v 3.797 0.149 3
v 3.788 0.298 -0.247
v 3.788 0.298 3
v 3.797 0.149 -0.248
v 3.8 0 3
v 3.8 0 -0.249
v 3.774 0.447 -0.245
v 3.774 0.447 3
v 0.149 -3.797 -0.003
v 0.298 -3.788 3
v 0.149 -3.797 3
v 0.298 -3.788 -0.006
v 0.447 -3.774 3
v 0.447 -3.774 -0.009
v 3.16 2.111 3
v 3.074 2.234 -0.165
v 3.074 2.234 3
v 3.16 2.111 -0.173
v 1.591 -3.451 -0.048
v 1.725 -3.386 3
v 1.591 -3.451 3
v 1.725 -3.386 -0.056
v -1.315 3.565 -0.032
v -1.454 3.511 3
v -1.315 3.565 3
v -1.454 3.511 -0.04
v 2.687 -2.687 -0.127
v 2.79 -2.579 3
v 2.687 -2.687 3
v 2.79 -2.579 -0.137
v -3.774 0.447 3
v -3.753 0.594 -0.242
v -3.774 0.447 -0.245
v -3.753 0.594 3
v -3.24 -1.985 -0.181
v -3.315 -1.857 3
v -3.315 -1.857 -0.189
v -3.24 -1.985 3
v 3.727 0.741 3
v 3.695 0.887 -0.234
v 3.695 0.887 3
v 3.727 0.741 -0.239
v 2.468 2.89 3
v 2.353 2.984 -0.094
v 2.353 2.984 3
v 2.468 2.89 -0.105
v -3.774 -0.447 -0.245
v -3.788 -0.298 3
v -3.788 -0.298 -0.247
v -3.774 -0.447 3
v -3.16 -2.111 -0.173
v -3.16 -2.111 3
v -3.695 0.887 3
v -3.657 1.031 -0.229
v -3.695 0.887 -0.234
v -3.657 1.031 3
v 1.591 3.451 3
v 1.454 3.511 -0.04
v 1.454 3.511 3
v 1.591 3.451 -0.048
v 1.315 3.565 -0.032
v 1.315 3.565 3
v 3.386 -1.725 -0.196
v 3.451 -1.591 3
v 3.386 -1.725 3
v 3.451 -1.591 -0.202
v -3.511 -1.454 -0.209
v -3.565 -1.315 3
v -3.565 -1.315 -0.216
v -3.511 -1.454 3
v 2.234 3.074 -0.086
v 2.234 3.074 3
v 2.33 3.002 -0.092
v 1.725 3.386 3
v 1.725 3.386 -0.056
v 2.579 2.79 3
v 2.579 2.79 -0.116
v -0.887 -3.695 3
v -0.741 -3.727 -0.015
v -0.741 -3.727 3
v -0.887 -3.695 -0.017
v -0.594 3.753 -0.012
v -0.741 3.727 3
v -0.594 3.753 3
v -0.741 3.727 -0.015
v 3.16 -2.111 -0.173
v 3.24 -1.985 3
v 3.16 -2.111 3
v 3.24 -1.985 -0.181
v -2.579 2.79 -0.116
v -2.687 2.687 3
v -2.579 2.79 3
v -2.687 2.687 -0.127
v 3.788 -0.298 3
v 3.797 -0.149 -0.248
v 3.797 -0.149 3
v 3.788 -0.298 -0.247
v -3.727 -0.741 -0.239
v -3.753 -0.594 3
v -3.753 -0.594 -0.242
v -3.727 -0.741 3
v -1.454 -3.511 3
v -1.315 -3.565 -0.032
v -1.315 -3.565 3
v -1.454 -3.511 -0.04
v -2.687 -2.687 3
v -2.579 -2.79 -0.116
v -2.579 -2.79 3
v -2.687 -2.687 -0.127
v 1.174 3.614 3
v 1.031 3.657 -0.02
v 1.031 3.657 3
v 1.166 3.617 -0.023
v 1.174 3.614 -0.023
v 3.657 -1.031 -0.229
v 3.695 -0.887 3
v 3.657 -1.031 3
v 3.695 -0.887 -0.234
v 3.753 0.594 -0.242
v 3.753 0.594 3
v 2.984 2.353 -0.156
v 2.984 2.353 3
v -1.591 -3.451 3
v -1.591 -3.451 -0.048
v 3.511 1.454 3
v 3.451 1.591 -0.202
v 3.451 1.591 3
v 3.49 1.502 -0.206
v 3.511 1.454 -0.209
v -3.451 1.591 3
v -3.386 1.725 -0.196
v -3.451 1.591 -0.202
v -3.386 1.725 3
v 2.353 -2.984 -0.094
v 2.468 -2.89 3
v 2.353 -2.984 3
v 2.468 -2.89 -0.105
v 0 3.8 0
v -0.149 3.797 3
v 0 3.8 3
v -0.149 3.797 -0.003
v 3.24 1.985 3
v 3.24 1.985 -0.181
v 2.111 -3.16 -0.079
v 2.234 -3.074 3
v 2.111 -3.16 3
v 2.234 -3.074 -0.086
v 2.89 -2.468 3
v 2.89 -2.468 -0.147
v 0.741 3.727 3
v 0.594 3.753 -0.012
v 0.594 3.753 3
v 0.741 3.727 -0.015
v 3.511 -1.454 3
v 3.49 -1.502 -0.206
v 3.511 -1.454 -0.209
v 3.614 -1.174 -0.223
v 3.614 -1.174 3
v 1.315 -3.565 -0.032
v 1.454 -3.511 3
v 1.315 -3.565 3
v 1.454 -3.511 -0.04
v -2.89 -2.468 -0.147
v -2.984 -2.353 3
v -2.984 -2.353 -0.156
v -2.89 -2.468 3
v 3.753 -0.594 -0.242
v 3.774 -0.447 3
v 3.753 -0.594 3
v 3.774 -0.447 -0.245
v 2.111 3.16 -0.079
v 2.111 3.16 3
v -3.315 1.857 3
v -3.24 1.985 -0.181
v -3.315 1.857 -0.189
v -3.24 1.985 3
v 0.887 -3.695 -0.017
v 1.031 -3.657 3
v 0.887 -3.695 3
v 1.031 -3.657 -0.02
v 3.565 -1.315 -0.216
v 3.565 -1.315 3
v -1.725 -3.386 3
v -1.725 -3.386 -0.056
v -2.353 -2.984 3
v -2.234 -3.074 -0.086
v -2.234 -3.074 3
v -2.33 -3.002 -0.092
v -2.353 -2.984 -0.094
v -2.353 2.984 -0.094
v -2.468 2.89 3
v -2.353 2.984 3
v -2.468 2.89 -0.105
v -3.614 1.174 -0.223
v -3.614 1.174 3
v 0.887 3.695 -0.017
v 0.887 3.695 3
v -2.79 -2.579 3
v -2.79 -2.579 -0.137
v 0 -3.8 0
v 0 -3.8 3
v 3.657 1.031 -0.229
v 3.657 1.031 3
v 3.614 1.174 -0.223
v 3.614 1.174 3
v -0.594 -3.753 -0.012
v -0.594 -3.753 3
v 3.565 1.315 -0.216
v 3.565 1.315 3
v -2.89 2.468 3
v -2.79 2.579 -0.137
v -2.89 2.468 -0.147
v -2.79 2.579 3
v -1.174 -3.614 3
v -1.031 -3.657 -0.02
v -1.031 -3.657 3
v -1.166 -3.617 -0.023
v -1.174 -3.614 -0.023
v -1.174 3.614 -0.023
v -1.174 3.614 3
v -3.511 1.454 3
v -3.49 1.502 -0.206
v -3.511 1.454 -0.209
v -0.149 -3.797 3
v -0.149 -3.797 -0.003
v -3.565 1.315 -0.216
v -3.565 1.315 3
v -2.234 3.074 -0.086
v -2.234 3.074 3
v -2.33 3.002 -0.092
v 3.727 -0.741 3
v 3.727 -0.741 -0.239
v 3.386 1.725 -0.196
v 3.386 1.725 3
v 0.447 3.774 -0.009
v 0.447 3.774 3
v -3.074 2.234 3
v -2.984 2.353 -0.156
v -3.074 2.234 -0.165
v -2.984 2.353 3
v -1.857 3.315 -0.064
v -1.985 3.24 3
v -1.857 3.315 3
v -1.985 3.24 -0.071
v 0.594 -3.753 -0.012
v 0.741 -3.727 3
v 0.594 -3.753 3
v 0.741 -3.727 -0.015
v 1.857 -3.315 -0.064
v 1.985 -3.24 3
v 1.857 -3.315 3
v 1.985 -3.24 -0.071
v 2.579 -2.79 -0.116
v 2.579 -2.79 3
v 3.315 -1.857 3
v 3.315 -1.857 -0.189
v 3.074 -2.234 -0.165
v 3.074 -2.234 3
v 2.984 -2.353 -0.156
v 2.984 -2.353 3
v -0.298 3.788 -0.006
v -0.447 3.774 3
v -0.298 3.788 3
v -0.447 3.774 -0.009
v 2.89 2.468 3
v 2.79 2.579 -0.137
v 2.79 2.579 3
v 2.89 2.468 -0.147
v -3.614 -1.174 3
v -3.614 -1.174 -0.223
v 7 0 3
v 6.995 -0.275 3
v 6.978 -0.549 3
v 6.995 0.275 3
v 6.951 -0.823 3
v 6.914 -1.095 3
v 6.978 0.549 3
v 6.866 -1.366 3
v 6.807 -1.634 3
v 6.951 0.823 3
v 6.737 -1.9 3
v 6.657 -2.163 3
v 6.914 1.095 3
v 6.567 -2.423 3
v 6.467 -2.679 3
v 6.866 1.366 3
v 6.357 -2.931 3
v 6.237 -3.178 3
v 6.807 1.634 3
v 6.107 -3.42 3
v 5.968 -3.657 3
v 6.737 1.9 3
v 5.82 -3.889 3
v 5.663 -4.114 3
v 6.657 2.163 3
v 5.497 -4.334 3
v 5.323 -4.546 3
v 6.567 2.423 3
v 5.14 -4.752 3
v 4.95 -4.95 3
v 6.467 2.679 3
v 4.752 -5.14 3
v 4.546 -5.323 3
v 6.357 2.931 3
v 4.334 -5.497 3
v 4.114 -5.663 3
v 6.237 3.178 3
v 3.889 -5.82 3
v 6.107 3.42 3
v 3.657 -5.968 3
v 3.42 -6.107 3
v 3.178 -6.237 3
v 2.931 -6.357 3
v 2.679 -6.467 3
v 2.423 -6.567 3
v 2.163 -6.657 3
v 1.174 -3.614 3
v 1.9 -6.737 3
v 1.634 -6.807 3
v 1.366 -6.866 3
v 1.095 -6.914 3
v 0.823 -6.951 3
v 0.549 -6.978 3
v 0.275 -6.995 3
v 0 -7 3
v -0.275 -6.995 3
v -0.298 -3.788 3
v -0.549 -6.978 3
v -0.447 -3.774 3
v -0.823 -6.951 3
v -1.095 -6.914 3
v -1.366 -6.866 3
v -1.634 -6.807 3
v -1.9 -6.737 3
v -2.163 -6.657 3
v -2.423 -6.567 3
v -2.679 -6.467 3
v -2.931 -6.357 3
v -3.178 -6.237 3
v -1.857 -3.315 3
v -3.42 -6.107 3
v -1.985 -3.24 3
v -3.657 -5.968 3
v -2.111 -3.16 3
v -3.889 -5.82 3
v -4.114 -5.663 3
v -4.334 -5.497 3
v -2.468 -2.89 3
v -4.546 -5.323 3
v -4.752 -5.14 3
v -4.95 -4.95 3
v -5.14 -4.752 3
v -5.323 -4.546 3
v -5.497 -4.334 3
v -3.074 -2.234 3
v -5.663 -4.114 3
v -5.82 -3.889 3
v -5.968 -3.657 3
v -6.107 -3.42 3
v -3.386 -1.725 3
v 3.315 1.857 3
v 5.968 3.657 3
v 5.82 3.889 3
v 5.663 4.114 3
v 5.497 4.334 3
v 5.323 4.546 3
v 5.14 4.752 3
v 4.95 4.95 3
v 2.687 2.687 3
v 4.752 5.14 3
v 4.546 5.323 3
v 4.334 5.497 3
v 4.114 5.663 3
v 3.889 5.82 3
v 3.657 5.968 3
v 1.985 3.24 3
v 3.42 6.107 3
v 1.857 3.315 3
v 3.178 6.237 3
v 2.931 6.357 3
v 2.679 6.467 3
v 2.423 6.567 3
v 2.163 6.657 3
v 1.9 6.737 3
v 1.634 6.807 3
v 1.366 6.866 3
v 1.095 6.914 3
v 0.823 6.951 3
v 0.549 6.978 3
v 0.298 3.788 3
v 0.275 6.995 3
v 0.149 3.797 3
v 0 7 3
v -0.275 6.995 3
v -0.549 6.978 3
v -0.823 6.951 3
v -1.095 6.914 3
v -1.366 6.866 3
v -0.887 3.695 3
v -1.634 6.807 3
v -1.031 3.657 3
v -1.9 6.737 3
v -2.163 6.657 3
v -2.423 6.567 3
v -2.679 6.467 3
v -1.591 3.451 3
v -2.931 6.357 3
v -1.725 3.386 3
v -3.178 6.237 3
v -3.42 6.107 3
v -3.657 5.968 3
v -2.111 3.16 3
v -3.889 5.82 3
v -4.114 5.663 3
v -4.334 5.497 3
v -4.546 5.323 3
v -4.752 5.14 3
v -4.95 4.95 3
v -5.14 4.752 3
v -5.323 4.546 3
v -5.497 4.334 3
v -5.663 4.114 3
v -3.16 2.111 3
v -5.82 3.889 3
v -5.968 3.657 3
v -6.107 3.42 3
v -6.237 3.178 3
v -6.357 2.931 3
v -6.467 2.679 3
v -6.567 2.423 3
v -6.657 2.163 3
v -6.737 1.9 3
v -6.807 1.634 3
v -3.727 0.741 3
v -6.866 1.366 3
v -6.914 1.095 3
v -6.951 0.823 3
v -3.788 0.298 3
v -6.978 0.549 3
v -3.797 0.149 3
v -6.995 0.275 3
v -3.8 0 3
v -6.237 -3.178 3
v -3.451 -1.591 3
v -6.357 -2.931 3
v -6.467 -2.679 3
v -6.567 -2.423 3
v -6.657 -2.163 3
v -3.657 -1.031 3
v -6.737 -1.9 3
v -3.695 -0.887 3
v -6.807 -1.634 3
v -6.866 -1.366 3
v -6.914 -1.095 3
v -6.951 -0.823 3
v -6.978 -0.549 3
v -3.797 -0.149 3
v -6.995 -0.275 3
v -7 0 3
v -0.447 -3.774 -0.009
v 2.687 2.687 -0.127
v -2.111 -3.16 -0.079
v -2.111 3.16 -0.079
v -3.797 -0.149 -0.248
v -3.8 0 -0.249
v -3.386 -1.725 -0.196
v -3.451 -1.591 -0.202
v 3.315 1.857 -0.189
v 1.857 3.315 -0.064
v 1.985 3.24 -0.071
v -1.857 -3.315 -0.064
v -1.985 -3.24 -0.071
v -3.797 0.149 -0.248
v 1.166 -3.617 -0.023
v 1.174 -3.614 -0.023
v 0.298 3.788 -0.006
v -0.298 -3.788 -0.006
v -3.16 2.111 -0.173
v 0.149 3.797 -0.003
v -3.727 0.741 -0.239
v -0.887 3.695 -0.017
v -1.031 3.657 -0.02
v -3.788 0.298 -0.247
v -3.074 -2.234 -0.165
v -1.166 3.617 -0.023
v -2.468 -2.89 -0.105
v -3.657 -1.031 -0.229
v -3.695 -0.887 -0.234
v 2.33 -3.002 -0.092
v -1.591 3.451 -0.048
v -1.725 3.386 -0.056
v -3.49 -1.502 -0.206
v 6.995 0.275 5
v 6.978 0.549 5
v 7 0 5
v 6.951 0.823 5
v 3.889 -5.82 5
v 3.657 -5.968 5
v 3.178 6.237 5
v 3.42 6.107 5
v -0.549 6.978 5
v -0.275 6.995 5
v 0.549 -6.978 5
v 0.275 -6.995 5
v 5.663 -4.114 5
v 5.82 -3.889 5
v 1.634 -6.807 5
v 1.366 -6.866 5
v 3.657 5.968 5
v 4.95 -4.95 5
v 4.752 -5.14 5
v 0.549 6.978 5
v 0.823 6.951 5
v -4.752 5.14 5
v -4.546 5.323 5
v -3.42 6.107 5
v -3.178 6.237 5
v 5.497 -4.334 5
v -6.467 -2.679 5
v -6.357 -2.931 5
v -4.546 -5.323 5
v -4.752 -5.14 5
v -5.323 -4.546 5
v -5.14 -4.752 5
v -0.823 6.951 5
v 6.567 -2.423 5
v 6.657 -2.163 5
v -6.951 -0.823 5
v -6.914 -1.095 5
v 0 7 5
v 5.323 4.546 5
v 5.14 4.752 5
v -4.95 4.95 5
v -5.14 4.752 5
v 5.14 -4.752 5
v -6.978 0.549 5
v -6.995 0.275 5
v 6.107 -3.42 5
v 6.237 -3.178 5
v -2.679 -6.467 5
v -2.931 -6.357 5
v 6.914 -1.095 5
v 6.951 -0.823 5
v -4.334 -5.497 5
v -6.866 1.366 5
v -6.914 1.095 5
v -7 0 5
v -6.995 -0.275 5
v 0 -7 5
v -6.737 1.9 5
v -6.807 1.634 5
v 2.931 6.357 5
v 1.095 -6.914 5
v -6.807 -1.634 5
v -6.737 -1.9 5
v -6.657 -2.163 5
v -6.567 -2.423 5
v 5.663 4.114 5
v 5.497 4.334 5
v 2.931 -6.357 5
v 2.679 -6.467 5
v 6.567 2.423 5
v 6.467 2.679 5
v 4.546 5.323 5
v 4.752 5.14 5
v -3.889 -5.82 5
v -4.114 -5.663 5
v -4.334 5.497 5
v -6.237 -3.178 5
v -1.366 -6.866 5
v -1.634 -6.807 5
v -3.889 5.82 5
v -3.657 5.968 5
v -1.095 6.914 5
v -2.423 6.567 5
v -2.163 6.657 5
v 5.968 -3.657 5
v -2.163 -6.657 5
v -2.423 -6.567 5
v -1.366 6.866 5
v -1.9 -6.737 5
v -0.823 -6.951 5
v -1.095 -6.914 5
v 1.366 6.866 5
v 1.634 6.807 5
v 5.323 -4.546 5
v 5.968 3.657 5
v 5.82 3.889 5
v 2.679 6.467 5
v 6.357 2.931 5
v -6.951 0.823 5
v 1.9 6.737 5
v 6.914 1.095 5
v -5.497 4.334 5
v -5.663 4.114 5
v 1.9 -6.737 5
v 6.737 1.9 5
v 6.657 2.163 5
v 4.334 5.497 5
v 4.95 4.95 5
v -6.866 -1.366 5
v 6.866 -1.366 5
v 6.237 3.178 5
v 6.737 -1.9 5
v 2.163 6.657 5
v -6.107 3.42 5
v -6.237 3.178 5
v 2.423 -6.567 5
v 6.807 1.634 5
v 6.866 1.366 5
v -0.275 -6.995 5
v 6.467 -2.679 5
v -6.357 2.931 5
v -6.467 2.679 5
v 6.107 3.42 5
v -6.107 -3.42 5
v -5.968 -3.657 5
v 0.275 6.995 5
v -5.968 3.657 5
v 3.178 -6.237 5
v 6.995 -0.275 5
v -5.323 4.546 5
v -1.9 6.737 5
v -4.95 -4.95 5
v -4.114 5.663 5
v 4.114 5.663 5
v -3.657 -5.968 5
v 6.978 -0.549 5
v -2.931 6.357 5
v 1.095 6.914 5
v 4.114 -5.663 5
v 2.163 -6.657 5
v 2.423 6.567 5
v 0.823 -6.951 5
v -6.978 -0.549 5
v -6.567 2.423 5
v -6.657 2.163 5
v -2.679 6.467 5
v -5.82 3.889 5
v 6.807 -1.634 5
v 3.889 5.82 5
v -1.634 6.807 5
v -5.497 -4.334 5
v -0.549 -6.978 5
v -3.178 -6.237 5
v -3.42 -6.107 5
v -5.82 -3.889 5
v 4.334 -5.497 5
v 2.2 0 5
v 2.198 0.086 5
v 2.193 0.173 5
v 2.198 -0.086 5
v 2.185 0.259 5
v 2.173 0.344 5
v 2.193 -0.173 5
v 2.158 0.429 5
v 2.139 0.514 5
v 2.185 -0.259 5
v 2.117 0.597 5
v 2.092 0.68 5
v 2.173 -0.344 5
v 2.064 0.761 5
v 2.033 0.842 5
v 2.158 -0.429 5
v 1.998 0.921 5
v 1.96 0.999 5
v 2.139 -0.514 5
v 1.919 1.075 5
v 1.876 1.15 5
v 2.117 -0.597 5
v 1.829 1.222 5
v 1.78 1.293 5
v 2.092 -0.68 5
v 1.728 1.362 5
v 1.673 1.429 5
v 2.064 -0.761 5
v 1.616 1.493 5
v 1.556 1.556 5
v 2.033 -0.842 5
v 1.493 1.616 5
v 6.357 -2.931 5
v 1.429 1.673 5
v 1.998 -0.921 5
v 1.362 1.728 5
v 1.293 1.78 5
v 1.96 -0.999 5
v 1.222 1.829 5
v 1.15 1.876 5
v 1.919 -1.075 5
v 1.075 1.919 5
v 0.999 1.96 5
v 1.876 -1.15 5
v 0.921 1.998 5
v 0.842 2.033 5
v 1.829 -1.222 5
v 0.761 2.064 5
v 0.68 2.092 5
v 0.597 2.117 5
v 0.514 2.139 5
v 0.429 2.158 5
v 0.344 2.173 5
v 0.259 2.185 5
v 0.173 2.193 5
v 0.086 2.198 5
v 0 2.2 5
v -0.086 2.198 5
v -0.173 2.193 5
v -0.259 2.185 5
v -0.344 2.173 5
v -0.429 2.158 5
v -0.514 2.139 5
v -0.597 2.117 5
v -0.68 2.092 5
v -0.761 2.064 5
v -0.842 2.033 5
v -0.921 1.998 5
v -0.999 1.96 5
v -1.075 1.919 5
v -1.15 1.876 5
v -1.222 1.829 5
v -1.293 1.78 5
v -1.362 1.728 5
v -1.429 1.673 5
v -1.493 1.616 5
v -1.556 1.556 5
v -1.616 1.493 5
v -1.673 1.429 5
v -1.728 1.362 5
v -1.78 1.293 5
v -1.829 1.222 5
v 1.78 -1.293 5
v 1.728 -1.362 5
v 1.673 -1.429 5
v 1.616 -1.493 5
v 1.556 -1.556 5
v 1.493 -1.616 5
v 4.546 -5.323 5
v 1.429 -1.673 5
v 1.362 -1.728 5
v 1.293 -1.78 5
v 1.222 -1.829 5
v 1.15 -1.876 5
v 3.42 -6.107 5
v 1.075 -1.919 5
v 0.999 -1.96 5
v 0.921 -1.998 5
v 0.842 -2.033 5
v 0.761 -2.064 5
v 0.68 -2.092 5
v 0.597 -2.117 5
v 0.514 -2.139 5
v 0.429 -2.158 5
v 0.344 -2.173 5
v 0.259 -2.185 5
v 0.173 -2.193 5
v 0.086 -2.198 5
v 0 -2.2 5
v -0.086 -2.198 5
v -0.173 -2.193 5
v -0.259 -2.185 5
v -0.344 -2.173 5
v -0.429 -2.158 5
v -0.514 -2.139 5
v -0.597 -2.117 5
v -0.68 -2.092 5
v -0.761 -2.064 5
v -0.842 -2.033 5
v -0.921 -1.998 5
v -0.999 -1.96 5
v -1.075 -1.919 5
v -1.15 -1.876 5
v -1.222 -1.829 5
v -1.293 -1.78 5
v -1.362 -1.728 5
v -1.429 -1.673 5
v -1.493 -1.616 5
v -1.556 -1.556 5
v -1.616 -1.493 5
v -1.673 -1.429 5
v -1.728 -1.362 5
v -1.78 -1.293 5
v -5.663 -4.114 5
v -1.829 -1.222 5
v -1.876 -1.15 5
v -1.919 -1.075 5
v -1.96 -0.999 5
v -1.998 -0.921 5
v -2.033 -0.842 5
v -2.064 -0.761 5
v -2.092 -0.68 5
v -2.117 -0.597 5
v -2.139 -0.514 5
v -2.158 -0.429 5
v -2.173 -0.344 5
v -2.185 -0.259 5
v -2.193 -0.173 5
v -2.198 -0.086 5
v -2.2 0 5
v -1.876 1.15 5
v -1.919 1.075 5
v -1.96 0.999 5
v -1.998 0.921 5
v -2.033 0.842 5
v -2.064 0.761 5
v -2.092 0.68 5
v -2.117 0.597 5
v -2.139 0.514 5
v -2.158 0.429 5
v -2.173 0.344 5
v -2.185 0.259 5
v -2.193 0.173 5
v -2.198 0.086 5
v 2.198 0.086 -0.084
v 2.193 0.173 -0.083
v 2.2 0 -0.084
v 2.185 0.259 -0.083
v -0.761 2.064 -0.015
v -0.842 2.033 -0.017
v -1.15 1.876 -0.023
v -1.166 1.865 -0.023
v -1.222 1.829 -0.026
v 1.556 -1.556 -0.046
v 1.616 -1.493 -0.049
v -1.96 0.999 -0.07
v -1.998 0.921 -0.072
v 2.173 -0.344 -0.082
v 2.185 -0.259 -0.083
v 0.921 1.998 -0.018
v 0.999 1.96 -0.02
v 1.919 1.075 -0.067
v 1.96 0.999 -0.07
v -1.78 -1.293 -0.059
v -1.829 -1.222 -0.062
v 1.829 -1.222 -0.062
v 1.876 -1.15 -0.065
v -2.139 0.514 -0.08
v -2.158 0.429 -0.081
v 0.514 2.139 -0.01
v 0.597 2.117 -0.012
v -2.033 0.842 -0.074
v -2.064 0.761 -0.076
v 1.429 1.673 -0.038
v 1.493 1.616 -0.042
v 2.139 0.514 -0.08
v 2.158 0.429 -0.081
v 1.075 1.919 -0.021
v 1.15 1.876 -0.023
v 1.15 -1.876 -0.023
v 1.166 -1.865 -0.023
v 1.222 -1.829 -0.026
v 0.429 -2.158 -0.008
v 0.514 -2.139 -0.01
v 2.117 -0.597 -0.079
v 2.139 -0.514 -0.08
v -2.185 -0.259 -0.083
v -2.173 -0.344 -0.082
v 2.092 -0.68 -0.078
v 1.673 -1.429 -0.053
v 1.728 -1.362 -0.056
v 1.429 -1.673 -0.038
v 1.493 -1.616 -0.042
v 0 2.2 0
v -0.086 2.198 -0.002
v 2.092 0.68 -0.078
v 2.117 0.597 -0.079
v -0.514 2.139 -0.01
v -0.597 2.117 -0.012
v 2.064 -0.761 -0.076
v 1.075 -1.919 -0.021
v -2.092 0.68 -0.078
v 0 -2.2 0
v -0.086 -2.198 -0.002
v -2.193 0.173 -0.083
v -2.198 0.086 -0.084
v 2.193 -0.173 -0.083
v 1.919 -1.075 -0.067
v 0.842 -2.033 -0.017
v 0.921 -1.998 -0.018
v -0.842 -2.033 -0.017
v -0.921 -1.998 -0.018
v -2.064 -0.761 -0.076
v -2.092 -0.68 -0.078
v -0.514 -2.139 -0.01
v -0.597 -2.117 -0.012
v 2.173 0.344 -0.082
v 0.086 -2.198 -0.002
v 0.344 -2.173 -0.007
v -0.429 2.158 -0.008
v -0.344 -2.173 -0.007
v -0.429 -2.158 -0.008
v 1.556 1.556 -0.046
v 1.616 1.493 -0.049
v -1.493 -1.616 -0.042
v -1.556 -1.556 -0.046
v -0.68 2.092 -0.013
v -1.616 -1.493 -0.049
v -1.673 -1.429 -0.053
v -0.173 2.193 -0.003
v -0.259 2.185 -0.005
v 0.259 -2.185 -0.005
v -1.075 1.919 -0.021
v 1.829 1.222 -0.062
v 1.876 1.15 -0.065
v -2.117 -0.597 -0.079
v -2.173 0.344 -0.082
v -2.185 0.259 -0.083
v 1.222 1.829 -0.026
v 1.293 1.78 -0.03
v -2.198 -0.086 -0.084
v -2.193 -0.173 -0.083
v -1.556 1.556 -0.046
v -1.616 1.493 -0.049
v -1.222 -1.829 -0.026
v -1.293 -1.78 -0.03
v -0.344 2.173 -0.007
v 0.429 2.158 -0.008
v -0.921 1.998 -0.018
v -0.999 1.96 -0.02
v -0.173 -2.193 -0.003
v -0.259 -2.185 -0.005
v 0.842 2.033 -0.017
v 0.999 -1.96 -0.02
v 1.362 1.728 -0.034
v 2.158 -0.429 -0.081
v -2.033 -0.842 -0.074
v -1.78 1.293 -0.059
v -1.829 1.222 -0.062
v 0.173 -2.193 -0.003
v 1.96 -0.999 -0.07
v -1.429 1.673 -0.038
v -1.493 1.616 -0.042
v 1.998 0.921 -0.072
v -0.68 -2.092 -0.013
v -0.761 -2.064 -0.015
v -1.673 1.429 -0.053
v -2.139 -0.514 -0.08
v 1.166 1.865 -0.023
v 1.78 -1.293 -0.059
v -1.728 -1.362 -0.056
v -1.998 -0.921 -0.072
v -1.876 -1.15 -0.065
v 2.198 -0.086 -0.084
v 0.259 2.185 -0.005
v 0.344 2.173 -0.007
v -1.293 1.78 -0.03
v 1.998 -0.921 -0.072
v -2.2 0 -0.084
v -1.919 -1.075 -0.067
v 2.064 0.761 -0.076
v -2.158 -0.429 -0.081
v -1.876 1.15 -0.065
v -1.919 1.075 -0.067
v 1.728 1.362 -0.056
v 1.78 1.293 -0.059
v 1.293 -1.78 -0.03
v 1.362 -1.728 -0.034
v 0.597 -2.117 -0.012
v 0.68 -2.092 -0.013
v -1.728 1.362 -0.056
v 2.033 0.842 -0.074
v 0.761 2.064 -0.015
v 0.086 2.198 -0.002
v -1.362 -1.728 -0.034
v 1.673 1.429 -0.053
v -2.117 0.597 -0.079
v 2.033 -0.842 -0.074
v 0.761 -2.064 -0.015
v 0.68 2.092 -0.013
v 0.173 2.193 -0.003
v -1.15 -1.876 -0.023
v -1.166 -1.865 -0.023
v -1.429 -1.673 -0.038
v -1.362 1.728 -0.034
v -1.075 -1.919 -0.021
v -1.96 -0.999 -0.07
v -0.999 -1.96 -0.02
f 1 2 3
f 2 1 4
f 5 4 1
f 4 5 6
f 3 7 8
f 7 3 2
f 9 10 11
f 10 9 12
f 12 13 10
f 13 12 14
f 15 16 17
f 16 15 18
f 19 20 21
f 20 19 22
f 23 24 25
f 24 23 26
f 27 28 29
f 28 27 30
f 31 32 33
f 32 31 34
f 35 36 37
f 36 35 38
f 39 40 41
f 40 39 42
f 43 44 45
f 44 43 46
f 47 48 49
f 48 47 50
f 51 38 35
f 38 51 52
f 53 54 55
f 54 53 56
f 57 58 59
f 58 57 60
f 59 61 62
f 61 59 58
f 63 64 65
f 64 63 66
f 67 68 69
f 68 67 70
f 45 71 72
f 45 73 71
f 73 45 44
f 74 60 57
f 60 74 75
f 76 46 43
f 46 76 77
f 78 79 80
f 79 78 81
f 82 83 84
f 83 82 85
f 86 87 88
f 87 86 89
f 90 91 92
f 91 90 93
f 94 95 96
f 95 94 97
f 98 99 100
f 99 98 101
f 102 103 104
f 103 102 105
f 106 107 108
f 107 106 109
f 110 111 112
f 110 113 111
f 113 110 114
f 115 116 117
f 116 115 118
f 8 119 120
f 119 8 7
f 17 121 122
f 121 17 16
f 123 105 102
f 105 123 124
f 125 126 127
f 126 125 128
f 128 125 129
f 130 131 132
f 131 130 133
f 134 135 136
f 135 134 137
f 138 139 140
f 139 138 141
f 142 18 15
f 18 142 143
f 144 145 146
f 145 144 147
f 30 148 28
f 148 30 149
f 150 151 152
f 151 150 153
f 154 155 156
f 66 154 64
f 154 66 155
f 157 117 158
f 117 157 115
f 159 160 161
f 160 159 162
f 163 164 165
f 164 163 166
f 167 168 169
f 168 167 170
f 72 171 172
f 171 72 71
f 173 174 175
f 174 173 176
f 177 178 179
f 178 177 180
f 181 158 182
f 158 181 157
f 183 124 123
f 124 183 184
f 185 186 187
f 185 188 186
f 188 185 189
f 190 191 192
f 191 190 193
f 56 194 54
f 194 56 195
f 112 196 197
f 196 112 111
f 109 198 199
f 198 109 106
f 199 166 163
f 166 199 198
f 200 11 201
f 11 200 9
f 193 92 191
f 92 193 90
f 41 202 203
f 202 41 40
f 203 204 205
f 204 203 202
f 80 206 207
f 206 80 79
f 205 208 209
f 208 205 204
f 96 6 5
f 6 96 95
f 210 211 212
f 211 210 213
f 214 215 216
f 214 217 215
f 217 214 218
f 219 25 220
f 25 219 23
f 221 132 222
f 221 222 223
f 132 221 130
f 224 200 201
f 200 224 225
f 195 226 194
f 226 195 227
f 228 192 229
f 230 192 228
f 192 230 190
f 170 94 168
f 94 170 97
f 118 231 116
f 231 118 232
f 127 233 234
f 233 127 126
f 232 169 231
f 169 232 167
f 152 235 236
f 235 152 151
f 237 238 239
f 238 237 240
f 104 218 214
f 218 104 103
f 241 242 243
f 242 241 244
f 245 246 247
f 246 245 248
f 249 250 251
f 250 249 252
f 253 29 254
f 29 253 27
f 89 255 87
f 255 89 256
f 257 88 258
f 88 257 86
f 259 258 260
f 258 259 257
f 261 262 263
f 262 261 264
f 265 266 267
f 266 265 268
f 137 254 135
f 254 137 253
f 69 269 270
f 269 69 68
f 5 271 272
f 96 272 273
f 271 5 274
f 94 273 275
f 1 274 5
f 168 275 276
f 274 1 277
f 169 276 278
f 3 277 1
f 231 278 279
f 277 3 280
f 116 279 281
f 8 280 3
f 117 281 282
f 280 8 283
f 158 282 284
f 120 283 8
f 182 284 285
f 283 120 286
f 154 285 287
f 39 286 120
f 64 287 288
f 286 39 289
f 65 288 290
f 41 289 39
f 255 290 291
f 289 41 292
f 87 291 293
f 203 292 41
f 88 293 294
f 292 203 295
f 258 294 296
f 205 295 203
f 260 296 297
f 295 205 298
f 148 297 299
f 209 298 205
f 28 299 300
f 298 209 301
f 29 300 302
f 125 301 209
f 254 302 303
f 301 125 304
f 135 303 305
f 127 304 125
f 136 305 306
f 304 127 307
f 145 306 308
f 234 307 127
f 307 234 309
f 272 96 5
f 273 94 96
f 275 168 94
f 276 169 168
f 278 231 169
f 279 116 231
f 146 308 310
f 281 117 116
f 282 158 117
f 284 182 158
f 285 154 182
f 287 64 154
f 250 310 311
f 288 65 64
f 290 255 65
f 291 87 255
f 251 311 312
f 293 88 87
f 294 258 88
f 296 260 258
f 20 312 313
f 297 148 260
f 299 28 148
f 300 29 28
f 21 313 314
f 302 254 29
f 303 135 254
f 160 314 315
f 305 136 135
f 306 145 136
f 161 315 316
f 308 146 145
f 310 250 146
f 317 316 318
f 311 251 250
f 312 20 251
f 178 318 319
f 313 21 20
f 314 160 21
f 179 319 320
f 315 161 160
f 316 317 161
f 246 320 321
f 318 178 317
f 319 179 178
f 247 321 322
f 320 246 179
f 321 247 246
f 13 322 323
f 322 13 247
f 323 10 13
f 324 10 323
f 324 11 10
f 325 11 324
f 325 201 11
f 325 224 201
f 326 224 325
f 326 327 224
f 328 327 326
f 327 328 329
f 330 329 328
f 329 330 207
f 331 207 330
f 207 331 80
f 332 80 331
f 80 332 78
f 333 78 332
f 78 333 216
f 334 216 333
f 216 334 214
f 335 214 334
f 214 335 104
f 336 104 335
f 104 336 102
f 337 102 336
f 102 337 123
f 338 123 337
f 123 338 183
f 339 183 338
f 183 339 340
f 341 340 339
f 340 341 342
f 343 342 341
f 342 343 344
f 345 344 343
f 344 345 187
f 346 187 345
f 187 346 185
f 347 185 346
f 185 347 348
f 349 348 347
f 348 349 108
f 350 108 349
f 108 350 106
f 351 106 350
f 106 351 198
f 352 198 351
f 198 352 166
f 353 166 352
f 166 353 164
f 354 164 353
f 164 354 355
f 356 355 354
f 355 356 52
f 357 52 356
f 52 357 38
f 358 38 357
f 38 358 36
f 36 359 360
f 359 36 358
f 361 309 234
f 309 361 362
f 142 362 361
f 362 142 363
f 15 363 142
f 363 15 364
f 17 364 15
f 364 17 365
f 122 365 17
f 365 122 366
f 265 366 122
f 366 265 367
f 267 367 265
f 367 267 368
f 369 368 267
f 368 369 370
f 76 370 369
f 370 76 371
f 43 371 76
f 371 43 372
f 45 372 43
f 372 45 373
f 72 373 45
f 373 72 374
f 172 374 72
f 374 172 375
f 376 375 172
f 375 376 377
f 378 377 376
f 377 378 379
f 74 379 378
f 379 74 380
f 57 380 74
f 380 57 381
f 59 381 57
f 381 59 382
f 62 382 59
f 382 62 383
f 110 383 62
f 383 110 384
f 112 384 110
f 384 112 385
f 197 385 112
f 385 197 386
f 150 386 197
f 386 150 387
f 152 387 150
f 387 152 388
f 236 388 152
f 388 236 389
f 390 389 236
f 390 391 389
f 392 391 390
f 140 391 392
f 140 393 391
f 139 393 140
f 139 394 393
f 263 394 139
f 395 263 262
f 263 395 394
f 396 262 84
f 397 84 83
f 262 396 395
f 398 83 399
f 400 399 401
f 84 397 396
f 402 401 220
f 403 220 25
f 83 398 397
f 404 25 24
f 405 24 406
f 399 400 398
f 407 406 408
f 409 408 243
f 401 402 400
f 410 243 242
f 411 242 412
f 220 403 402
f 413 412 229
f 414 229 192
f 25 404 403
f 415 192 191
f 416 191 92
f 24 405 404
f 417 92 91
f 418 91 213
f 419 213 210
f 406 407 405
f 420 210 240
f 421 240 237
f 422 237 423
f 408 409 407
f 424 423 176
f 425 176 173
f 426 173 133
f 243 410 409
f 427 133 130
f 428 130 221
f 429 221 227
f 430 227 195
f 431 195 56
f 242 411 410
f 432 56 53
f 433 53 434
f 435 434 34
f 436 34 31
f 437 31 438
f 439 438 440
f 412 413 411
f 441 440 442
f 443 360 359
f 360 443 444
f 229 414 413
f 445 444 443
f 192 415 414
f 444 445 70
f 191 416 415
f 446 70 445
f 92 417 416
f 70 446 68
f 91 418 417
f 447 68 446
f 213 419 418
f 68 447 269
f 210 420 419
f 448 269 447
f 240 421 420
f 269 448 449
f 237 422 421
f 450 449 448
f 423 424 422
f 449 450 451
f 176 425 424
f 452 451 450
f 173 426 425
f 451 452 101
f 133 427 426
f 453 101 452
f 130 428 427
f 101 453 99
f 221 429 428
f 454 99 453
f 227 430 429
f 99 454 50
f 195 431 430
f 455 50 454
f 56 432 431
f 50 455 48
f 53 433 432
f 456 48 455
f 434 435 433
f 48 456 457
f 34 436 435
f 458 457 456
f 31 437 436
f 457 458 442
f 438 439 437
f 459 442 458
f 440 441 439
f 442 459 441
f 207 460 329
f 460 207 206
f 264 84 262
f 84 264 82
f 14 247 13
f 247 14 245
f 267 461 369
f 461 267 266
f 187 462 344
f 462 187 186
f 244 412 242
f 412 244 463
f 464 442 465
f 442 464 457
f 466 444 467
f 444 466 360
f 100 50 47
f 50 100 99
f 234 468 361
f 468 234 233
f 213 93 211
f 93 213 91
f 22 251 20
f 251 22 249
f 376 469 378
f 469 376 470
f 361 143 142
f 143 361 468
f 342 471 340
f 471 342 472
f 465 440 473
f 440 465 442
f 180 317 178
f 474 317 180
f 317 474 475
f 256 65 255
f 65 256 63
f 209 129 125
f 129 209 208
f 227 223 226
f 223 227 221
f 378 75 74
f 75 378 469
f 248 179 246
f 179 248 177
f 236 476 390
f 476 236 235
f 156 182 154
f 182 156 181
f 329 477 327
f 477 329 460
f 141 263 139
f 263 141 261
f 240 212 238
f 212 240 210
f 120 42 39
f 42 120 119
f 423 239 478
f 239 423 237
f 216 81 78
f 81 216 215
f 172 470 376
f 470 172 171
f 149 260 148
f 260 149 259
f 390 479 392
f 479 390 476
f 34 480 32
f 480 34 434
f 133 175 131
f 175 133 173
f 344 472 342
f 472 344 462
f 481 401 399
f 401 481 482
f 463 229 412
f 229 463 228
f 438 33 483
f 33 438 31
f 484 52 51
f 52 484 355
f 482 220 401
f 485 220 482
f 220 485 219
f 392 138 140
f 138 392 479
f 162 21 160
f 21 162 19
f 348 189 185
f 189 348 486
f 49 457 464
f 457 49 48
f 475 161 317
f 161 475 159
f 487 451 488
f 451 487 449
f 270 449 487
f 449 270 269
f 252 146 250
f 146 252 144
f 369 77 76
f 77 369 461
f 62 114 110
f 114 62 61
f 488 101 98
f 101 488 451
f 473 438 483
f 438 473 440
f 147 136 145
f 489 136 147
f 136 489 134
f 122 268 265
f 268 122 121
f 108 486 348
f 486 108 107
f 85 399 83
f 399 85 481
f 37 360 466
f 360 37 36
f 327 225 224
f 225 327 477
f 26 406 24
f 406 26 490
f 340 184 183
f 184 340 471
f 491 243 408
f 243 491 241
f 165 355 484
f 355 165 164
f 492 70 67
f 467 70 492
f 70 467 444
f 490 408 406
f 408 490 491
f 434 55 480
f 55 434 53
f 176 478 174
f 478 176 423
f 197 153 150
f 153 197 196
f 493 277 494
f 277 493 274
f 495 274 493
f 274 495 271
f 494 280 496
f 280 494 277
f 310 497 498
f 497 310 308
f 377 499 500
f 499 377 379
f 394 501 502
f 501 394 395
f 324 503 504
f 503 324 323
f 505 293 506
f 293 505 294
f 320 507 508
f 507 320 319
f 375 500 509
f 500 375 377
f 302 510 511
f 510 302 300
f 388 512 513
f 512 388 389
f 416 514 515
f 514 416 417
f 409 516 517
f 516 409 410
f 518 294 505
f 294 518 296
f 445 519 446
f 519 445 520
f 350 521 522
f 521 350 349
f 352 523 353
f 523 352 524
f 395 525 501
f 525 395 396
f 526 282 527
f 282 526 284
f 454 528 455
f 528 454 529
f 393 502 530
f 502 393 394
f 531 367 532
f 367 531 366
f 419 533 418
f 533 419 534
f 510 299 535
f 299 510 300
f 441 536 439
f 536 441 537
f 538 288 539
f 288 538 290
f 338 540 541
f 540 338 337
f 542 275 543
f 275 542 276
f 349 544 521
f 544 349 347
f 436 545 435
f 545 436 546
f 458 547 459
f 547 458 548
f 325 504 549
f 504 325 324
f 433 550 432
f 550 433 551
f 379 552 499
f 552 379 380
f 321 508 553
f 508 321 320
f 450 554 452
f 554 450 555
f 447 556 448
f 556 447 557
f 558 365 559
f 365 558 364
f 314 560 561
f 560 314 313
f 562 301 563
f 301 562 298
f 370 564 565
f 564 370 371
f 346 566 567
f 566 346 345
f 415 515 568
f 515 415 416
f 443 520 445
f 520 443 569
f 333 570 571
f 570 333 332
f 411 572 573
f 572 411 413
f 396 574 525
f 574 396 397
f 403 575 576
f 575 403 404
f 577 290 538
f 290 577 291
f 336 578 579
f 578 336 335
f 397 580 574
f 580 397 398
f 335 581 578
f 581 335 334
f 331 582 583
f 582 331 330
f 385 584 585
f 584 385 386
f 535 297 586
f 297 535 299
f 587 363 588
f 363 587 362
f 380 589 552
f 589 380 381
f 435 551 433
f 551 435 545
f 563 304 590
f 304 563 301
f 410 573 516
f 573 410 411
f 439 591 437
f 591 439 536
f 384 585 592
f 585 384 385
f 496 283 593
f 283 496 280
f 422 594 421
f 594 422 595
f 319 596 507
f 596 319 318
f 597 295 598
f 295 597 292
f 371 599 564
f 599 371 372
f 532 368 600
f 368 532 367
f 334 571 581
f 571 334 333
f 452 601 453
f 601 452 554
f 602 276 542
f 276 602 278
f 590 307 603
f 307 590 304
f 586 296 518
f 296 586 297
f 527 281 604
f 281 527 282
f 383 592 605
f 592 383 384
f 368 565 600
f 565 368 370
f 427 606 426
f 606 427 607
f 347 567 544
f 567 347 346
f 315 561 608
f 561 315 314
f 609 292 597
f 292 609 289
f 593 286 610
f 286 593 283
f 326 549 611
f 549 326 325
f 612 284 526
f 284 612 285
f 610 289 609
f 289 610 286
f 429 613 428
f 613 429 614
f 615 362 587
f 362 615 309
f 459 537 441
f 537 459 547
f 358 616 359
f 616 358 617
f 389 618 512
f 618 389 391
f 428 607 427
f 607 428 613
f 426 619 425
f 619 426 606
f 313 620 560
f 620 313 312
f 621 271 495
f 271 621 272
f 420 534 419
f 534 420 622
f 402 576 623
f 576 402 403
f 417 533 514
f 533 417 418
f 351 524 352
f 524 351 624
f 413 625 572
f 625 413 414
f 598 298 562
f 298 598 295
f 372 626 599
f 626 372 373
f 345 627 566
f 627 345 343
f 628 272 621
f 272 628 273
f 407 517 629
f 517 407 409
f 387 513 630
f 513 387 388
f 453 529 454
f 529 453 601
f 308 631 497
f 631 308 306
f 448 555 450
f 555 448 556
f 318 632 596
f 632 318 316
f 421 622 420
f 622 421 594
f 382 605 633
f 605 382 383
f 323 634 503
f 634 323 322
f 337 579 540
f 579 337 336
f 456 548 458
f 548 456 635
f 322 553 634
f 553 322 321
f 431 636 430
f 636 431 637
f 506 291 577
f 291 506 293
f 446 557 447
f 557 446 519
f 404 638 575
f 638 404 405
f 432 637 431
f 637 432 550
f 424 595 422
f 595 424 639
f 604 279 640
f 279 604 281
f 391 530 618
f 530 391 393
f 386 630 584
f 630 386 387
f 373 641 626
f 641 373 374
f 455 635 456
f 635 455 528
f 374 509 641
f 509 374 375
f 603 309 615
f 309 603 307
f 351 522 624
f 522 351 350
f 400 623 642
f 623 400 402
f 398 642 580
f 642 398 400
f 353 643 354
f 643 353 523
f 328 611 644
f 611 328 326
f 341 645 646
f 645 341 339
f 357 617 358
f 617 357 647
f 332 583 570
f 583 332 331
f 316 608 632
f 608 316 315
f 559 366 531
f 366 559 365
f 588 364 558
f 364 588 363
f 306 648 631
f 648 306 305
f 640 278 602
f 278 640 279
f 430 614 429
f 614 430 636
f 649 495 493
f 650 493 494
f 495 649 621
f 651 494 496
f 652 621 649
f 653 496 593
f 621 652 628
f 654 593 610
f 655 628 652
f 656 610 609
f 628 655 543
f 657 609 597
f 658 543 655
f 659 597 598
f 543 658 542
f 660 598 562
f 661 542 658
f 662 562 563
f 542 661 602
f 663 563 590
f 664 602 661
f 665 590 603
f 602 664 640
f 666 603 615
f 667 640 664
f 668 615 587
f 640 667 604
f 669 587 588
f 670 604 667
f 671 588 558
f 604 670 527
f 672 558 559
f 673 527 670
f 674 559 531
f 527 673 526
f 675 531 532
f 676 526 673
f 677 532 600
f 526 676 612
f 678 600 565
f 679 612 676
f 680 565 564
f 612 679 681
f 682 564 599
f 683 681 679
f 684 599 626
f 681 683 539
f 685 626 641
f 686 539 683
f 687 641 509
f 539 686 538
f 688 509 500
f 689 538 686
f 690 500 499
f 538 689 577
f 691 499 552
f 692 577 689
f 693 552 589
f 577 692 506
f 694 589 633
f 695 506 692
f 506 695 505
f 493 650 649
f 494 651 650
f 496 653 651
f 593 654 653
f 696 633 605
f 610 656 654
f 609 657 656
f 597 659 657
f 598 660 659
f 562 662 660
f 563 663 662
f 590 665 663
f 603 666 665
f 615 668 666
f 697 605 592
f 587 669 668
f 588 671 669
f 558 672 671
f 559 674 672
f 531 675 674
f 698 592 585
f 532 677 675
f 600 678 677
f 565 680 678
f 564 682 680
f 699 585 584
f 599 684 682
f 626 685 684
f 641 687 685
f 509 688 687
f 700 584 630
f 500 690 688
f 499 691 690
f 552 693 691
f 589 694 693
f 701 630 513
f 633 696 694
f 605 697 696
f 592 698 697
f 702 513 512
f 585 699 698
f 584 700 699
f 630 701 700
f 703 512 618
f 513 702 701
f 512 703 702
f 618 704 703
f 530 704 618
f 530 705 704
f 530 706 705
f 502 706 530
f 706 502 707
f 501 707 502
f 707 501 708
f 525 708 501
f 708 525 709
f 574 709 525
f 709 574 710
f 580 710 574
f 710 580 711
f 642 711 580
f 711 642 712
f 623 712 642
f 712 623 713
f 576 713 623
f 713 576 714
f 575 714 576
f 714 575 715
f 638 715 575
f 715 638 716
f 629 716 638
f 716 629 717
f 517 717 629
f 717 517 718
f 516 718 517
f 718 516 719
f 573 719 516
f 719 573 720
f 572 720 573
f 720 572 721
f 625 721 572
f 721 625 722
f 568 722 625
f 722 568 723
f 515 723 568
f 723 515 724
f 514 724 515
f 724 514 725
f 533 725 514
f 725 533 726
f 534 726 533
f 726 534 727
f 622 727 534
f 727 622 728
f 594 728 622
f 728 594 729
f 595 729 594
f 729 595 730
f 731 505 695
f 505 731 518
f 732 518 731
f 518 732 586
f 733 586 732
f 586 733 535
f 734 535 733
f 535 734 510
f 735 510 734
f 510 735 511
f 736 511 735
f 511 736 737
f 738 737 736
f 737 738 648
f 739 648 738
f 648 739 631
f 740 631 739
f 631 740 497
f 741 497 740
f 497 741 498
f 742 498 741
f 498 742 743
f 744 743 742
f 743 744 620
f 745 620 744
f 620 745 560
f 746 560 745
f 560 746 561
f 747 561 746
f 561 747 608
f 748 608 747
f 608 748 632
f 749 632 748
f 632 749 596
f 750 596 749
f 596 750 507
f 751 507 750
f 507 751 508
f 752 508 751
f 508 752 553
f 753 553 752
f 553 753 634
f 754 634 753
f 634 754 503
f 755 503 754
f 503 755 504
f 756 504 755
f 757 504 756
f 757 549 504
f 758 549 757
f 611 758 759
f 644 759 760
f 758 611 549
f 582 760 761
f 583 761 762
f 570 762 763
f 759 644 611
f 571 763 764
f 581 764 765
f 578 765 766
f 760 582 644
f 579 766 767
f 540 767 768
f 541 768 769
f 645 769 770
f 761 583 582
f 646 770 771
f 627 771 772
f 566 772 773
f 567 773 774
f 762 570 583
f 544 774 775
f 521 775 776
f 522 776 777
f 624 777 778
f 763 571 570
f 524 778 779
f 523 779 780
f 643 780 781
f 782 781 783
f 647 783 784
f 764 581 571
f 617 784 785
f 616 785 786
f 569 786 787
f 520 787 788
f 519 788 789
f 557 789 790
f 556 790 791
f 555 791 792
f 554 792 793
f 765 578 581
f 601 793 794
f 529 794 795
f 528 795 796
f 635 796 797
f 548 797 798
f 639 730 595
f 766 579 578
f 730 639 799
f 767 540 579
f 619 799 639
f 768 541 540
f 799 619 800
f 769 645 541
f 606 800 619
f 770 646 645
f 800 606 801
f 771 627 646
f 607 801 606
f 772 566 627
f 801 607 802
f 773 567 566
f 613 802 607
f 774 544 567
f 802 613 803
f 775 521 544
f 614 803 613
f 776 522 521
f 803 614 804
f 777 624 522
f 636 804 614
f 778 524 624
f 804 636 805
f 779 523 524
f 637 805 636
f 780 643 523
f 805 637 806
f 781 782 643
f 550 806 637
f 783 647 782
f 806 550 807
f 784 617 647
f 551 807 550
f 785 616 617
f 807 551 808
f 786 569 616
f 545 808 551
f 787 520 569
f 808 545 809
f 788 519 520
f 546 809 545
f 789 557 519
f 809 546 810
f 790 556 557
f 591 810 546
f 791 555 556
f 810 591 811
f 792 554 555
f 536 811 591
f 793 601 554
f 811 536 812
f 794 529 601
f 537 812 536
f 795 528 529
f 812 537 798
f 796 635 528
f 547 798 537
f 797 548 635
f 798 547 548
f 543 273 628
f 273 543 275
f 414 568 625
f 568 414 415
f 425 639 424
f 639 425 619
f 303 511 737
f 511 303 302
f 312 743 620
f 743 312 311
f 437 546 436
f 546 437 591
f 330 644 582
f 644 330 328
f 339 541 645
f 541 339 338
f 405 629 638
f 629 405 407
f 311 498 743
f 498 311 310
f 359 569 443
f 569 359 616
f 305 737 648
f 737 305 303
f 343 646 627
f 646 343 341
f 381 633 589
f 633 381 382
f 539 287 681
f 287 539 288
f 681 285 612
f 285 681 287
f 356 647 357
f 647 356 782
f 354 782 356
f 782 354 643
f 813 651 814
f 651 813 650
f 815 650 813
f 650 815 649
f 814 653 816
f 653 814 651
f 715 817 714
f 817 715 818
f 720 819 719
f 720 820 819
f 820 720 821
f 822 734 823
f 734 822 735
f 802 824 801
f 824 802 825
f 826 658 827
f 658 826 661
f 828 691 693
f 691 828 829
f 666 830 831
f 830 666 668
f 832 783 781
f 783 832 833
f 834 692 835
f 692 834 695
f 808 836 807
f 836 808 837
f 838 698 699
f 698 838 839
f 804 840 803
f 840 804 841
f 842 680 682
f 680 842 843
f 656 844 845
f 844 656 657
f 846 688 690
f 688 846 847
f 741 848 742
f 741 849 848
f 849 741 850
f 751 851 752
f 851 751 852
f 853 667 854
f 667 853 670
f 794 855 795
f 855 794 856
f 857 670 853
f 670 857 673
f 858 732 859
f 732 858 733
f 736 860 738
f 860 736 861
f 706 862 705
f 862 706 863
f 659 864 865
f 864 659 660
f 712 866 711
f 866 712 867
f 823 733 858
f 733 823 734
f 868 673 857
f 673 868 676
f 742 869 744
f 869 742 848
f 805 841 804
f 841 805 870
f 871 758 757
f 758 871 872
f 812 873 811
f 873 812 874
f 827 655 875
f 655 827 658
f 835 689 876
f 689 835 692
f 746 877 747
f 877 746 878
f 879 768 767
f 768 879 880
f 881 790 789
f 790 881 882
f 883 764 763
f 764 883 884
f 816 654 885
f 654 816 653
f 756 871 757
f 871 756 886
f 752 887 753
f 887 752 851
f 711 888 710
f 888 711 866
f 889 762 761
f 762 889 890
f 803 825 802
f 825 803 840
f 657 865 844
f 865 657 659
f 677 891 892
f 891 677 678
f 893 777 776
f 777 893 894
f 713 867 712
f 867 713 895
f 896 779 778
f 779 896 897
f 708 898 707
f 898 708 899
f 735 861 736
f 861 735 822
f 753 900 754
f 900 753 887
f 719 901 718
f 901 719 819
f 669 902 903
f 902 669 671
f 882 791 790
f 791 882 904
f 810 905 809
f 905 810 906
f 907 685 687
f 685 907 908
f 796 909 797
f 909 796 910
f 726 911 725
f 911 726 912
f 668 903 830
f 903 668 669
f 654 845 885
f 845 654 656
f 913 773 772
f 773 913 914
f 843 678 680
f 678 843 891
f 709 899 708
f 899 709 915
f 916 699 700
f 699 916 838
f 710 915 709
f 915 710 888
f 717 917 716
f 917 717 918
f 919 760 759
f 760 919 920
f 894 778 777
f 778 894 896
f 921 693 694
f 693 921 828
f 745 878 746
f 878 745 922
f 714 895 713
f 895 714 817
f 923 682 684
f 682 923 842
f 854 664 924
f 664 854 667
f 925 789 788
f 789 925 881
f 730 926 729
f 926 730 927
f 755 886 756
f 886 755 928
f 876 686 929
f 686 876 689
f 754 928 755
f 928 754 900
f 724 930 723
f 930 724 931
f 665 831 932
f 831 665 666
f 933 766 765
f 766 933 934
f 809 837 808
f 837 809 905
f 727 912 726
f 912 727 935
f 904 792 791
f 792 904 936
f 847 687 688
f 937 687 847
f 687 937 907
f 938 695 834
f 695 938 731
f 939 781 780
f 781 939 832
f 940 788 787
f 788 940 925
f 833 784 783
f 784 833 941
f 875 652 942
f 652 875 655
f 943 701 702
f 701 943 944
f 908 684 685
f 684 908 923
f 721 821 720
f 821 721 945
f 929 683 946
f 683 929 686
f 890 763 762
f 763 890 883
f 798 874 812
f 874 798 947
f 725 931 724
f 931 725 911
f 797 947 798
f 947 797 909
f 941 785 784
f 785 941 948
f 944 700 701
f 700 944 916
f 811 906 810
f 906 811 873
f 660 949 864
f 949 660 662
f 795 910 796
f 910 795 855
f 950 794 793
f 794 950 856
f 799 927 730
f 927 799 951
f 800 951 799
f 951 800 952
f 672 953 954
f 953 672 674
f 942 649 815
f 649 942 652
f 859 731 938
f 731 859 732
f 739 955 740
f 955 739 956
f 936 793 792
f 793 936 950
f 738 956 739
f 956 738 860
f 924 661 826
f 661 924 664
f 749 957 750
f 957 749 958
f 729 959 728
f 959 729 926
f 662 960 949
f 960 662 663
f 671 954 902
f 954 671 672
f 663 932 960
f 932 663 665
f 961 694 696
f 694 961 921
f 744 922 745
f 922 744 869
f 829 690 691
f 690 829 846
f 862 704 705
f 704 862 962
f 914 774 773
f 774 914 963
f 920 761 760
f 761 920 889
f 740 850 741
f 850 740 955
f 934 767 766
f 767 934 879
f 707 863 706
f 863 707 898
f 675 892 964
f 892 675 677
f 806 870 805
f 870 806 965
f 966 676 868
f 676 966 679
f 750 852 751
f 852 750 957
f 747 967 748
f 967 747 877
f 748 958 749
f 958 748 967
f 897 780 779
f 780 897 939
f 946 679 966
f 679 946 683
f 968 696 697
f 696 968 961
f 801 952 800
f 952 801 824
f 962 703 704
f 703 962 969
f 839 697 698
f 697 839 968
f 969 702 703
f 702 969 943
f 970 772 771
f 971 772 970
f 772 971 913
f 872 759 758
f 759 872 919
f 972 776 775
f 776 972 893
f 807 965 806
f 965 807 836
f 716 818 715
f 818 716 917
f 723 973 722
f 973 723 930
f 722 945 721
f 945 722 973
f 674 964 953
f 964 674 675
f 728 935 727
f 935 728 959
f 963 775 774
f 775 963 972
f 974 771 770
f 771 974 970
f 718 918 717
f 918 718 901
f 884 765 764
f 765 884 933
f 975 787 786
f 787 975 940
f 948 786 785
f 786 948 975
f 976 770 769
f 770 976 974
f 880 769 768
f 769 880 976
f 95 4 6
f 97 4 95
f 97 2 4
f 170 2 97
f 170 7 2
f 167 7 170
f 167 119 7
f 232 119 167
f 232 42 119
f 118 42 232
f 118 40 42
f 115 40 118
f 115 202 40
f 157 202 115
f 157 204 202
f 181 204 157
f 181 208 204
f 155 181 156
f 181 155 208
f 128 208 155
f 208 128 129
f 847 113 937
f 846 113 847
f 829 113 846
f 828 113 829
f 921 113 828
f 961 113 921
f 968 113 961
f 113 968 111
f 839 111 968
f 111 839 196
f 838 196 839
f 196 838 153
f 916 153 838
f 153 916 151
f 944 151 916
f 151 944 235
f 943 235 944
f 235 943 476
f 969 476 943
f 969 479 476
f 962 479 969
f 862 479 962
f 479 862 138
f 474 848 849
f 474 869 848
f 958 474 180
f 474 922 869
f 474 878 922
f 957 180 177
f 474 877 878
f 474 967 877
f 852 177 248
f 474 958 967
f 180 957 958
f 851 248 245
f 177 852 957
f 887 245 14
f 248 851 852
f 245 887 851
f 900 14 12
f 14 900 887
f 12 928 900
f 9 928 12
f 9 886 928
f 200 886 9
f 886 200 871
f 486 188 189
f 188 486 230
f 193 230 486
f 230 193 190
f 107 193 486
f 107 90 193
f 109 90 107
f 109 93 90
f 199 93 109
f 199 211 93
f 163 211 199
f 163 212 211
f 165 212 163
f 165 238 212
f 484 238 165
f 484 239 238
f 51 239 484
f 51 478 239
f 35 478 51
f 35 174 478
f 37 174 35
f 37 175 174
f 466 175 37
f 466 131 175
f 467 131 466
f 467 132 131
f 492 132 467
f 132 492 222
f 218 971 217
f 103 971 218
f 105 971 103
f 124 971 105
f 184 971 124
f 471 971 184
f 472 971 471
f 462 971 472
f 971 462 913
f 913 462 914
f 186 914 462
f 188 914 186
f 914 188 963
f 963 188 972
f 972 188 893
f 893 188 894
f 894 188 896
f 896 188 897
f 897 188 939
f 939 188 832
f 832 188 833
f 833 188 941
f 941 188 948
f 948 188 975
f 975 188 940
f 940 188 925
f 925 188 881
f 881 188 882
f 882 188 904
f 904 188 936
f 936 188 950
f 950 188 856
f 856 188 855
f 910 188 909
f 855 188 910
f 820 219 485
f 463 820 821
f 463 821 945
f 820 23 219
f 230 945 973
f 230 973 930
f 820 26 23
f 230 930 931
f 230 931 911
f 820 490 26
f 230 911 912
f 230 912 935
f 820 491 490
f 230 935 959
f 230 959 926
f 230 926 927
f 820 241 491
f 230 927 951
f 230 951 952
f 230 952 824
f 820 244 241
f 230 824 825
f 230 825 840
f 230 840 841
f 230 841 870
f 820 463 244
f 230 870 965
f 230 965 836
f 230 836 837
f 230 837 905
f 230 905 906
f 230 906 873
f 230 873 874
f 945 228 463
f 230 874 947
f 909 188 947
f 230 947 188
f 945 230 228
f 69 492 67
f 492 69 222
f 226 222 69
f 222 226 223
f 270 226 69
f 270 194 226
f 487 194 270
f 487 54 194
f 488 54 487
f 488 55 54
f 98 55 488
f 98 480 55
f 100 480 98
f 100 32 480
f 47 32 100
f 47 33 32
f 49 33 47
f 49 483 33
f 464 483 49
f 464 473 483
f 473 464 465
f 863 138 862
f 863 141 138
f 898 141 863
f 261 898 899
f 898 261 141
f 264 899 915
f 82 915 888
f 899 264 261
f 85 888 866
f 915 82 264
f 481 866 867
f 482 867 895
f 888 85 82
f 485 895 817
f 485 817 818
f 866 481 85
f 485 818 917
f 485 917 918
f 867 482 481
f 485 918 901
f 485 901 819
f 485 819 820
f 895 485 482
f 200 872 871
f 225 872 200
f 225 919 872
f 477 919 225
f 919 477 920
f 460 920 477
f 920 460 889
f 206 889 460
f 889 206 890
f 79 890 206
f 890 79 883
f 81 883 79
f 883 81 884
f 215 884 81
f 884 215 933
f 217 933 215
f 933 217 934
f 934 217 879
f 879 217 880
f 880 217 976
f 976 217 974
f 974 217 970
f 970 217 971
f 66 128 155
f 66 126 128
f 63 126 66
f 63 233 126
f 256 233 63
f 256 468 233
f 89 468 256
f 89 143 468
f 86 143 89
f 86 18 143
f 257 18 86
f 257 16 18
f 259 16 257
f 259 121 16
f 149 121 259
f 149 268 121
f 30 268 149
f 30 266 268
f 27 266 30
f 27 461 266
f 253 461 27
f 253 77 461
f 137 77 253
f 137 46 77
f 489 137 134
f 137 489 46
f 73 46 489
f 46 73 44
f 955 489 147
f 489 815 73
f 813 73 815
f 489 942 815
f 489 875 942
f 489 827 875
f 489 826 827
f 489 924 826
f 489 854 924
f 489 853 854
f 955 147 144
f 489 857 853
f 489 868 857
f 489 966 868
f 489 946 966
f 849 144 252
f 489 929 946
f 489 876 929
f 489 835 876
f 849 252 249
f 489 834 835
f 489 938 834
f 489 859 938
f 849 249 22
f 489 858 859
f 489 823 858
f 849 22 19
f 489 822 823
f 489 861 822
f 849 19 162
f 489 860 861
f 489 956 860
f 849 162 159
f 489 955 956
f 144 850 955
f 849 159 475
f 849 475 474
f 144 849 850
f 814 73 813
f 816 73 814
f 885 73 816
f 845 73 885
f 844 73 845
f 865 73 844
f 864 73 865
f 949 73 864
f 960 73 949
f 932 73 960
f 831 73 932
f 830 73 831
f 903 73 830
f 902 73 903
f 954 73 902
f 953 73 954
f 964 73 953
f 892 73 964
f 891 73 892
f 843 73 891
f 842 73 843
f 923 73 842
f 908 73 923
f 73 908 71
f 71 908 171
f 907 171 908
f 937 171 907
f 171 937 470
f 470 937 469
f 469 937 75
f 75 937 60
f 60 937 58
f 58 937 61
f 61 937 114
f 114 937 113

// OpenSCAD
$fn = $preview ? 64 : 160;

/* [Shayba] */
m4_d = 4.4;
flange_od = 58.186; // голый буртик, echo каркаса
shrink_wall = 0.6;
gap = 3.0; // над усадкой, жила П-274М ≤ 2.3 мм
hat_d = 14;
hat_h = 2.0;
stem_od = 7.6;

saddle_od = flange_od + 2 * shrink_wall;
R = saddle_od / 2;

geometry_ok =
    gap >= 2.3
    && m4_d < stem_od
    && stem_od < hat_d
    && flange_od > 0
    && hat_h > 0
    && shrink_wall >= 0;

module echo_recipe() {
    if (!geometry_ok) {
        echo("ОШИБКА: неверные параметры шайбы. Геометрию не строим.");
        echo("gap=", gap, " m4_d=", m4_d, " stem_od=", stem_od, " hat_d=", hat_d);
    } else {
        echo("Ø М4 мм=", m4_d);
        echo("Ø голого буртика мм=", flange_od);
        echo("Стенка усадки мм=", shrink_wall);
        echo("Ø седла (усадка) мм=", saddle_od);
        echo("Зазор под жилу мм=", gap);
        echo("Ø шляпки мм=", hat_d, " Ø ножки мм=", stem_od);
        echo("Седло под усадку, не под голый пластик. На катушку 2 детали. Жила П-274М ≤ 2.3 мм.");
        echo("Если flange_od/shrink_wall каркаса другие — подставь их сюда.");
    }
}

module shayba() {
    difference() {
        union() {
            translate([0, 0, -2])
                cylinder(h = gap + 2, d = stem_od);
            translate([0, 0, gap])
                cylinder(h = hat_h, d = hat_d);
        }
        translate([0, 0, -3])
            cylinder(h = gap + hat_h + 4, d = m4_d);
        translate([0, 0, -R])
            rotate([90, 0, 0])
                cylinder(h = hat_d + 4, d = saddle_od, center = true);
    }
}

echo_recipe();

if (geometry_ok)
    shayba();
